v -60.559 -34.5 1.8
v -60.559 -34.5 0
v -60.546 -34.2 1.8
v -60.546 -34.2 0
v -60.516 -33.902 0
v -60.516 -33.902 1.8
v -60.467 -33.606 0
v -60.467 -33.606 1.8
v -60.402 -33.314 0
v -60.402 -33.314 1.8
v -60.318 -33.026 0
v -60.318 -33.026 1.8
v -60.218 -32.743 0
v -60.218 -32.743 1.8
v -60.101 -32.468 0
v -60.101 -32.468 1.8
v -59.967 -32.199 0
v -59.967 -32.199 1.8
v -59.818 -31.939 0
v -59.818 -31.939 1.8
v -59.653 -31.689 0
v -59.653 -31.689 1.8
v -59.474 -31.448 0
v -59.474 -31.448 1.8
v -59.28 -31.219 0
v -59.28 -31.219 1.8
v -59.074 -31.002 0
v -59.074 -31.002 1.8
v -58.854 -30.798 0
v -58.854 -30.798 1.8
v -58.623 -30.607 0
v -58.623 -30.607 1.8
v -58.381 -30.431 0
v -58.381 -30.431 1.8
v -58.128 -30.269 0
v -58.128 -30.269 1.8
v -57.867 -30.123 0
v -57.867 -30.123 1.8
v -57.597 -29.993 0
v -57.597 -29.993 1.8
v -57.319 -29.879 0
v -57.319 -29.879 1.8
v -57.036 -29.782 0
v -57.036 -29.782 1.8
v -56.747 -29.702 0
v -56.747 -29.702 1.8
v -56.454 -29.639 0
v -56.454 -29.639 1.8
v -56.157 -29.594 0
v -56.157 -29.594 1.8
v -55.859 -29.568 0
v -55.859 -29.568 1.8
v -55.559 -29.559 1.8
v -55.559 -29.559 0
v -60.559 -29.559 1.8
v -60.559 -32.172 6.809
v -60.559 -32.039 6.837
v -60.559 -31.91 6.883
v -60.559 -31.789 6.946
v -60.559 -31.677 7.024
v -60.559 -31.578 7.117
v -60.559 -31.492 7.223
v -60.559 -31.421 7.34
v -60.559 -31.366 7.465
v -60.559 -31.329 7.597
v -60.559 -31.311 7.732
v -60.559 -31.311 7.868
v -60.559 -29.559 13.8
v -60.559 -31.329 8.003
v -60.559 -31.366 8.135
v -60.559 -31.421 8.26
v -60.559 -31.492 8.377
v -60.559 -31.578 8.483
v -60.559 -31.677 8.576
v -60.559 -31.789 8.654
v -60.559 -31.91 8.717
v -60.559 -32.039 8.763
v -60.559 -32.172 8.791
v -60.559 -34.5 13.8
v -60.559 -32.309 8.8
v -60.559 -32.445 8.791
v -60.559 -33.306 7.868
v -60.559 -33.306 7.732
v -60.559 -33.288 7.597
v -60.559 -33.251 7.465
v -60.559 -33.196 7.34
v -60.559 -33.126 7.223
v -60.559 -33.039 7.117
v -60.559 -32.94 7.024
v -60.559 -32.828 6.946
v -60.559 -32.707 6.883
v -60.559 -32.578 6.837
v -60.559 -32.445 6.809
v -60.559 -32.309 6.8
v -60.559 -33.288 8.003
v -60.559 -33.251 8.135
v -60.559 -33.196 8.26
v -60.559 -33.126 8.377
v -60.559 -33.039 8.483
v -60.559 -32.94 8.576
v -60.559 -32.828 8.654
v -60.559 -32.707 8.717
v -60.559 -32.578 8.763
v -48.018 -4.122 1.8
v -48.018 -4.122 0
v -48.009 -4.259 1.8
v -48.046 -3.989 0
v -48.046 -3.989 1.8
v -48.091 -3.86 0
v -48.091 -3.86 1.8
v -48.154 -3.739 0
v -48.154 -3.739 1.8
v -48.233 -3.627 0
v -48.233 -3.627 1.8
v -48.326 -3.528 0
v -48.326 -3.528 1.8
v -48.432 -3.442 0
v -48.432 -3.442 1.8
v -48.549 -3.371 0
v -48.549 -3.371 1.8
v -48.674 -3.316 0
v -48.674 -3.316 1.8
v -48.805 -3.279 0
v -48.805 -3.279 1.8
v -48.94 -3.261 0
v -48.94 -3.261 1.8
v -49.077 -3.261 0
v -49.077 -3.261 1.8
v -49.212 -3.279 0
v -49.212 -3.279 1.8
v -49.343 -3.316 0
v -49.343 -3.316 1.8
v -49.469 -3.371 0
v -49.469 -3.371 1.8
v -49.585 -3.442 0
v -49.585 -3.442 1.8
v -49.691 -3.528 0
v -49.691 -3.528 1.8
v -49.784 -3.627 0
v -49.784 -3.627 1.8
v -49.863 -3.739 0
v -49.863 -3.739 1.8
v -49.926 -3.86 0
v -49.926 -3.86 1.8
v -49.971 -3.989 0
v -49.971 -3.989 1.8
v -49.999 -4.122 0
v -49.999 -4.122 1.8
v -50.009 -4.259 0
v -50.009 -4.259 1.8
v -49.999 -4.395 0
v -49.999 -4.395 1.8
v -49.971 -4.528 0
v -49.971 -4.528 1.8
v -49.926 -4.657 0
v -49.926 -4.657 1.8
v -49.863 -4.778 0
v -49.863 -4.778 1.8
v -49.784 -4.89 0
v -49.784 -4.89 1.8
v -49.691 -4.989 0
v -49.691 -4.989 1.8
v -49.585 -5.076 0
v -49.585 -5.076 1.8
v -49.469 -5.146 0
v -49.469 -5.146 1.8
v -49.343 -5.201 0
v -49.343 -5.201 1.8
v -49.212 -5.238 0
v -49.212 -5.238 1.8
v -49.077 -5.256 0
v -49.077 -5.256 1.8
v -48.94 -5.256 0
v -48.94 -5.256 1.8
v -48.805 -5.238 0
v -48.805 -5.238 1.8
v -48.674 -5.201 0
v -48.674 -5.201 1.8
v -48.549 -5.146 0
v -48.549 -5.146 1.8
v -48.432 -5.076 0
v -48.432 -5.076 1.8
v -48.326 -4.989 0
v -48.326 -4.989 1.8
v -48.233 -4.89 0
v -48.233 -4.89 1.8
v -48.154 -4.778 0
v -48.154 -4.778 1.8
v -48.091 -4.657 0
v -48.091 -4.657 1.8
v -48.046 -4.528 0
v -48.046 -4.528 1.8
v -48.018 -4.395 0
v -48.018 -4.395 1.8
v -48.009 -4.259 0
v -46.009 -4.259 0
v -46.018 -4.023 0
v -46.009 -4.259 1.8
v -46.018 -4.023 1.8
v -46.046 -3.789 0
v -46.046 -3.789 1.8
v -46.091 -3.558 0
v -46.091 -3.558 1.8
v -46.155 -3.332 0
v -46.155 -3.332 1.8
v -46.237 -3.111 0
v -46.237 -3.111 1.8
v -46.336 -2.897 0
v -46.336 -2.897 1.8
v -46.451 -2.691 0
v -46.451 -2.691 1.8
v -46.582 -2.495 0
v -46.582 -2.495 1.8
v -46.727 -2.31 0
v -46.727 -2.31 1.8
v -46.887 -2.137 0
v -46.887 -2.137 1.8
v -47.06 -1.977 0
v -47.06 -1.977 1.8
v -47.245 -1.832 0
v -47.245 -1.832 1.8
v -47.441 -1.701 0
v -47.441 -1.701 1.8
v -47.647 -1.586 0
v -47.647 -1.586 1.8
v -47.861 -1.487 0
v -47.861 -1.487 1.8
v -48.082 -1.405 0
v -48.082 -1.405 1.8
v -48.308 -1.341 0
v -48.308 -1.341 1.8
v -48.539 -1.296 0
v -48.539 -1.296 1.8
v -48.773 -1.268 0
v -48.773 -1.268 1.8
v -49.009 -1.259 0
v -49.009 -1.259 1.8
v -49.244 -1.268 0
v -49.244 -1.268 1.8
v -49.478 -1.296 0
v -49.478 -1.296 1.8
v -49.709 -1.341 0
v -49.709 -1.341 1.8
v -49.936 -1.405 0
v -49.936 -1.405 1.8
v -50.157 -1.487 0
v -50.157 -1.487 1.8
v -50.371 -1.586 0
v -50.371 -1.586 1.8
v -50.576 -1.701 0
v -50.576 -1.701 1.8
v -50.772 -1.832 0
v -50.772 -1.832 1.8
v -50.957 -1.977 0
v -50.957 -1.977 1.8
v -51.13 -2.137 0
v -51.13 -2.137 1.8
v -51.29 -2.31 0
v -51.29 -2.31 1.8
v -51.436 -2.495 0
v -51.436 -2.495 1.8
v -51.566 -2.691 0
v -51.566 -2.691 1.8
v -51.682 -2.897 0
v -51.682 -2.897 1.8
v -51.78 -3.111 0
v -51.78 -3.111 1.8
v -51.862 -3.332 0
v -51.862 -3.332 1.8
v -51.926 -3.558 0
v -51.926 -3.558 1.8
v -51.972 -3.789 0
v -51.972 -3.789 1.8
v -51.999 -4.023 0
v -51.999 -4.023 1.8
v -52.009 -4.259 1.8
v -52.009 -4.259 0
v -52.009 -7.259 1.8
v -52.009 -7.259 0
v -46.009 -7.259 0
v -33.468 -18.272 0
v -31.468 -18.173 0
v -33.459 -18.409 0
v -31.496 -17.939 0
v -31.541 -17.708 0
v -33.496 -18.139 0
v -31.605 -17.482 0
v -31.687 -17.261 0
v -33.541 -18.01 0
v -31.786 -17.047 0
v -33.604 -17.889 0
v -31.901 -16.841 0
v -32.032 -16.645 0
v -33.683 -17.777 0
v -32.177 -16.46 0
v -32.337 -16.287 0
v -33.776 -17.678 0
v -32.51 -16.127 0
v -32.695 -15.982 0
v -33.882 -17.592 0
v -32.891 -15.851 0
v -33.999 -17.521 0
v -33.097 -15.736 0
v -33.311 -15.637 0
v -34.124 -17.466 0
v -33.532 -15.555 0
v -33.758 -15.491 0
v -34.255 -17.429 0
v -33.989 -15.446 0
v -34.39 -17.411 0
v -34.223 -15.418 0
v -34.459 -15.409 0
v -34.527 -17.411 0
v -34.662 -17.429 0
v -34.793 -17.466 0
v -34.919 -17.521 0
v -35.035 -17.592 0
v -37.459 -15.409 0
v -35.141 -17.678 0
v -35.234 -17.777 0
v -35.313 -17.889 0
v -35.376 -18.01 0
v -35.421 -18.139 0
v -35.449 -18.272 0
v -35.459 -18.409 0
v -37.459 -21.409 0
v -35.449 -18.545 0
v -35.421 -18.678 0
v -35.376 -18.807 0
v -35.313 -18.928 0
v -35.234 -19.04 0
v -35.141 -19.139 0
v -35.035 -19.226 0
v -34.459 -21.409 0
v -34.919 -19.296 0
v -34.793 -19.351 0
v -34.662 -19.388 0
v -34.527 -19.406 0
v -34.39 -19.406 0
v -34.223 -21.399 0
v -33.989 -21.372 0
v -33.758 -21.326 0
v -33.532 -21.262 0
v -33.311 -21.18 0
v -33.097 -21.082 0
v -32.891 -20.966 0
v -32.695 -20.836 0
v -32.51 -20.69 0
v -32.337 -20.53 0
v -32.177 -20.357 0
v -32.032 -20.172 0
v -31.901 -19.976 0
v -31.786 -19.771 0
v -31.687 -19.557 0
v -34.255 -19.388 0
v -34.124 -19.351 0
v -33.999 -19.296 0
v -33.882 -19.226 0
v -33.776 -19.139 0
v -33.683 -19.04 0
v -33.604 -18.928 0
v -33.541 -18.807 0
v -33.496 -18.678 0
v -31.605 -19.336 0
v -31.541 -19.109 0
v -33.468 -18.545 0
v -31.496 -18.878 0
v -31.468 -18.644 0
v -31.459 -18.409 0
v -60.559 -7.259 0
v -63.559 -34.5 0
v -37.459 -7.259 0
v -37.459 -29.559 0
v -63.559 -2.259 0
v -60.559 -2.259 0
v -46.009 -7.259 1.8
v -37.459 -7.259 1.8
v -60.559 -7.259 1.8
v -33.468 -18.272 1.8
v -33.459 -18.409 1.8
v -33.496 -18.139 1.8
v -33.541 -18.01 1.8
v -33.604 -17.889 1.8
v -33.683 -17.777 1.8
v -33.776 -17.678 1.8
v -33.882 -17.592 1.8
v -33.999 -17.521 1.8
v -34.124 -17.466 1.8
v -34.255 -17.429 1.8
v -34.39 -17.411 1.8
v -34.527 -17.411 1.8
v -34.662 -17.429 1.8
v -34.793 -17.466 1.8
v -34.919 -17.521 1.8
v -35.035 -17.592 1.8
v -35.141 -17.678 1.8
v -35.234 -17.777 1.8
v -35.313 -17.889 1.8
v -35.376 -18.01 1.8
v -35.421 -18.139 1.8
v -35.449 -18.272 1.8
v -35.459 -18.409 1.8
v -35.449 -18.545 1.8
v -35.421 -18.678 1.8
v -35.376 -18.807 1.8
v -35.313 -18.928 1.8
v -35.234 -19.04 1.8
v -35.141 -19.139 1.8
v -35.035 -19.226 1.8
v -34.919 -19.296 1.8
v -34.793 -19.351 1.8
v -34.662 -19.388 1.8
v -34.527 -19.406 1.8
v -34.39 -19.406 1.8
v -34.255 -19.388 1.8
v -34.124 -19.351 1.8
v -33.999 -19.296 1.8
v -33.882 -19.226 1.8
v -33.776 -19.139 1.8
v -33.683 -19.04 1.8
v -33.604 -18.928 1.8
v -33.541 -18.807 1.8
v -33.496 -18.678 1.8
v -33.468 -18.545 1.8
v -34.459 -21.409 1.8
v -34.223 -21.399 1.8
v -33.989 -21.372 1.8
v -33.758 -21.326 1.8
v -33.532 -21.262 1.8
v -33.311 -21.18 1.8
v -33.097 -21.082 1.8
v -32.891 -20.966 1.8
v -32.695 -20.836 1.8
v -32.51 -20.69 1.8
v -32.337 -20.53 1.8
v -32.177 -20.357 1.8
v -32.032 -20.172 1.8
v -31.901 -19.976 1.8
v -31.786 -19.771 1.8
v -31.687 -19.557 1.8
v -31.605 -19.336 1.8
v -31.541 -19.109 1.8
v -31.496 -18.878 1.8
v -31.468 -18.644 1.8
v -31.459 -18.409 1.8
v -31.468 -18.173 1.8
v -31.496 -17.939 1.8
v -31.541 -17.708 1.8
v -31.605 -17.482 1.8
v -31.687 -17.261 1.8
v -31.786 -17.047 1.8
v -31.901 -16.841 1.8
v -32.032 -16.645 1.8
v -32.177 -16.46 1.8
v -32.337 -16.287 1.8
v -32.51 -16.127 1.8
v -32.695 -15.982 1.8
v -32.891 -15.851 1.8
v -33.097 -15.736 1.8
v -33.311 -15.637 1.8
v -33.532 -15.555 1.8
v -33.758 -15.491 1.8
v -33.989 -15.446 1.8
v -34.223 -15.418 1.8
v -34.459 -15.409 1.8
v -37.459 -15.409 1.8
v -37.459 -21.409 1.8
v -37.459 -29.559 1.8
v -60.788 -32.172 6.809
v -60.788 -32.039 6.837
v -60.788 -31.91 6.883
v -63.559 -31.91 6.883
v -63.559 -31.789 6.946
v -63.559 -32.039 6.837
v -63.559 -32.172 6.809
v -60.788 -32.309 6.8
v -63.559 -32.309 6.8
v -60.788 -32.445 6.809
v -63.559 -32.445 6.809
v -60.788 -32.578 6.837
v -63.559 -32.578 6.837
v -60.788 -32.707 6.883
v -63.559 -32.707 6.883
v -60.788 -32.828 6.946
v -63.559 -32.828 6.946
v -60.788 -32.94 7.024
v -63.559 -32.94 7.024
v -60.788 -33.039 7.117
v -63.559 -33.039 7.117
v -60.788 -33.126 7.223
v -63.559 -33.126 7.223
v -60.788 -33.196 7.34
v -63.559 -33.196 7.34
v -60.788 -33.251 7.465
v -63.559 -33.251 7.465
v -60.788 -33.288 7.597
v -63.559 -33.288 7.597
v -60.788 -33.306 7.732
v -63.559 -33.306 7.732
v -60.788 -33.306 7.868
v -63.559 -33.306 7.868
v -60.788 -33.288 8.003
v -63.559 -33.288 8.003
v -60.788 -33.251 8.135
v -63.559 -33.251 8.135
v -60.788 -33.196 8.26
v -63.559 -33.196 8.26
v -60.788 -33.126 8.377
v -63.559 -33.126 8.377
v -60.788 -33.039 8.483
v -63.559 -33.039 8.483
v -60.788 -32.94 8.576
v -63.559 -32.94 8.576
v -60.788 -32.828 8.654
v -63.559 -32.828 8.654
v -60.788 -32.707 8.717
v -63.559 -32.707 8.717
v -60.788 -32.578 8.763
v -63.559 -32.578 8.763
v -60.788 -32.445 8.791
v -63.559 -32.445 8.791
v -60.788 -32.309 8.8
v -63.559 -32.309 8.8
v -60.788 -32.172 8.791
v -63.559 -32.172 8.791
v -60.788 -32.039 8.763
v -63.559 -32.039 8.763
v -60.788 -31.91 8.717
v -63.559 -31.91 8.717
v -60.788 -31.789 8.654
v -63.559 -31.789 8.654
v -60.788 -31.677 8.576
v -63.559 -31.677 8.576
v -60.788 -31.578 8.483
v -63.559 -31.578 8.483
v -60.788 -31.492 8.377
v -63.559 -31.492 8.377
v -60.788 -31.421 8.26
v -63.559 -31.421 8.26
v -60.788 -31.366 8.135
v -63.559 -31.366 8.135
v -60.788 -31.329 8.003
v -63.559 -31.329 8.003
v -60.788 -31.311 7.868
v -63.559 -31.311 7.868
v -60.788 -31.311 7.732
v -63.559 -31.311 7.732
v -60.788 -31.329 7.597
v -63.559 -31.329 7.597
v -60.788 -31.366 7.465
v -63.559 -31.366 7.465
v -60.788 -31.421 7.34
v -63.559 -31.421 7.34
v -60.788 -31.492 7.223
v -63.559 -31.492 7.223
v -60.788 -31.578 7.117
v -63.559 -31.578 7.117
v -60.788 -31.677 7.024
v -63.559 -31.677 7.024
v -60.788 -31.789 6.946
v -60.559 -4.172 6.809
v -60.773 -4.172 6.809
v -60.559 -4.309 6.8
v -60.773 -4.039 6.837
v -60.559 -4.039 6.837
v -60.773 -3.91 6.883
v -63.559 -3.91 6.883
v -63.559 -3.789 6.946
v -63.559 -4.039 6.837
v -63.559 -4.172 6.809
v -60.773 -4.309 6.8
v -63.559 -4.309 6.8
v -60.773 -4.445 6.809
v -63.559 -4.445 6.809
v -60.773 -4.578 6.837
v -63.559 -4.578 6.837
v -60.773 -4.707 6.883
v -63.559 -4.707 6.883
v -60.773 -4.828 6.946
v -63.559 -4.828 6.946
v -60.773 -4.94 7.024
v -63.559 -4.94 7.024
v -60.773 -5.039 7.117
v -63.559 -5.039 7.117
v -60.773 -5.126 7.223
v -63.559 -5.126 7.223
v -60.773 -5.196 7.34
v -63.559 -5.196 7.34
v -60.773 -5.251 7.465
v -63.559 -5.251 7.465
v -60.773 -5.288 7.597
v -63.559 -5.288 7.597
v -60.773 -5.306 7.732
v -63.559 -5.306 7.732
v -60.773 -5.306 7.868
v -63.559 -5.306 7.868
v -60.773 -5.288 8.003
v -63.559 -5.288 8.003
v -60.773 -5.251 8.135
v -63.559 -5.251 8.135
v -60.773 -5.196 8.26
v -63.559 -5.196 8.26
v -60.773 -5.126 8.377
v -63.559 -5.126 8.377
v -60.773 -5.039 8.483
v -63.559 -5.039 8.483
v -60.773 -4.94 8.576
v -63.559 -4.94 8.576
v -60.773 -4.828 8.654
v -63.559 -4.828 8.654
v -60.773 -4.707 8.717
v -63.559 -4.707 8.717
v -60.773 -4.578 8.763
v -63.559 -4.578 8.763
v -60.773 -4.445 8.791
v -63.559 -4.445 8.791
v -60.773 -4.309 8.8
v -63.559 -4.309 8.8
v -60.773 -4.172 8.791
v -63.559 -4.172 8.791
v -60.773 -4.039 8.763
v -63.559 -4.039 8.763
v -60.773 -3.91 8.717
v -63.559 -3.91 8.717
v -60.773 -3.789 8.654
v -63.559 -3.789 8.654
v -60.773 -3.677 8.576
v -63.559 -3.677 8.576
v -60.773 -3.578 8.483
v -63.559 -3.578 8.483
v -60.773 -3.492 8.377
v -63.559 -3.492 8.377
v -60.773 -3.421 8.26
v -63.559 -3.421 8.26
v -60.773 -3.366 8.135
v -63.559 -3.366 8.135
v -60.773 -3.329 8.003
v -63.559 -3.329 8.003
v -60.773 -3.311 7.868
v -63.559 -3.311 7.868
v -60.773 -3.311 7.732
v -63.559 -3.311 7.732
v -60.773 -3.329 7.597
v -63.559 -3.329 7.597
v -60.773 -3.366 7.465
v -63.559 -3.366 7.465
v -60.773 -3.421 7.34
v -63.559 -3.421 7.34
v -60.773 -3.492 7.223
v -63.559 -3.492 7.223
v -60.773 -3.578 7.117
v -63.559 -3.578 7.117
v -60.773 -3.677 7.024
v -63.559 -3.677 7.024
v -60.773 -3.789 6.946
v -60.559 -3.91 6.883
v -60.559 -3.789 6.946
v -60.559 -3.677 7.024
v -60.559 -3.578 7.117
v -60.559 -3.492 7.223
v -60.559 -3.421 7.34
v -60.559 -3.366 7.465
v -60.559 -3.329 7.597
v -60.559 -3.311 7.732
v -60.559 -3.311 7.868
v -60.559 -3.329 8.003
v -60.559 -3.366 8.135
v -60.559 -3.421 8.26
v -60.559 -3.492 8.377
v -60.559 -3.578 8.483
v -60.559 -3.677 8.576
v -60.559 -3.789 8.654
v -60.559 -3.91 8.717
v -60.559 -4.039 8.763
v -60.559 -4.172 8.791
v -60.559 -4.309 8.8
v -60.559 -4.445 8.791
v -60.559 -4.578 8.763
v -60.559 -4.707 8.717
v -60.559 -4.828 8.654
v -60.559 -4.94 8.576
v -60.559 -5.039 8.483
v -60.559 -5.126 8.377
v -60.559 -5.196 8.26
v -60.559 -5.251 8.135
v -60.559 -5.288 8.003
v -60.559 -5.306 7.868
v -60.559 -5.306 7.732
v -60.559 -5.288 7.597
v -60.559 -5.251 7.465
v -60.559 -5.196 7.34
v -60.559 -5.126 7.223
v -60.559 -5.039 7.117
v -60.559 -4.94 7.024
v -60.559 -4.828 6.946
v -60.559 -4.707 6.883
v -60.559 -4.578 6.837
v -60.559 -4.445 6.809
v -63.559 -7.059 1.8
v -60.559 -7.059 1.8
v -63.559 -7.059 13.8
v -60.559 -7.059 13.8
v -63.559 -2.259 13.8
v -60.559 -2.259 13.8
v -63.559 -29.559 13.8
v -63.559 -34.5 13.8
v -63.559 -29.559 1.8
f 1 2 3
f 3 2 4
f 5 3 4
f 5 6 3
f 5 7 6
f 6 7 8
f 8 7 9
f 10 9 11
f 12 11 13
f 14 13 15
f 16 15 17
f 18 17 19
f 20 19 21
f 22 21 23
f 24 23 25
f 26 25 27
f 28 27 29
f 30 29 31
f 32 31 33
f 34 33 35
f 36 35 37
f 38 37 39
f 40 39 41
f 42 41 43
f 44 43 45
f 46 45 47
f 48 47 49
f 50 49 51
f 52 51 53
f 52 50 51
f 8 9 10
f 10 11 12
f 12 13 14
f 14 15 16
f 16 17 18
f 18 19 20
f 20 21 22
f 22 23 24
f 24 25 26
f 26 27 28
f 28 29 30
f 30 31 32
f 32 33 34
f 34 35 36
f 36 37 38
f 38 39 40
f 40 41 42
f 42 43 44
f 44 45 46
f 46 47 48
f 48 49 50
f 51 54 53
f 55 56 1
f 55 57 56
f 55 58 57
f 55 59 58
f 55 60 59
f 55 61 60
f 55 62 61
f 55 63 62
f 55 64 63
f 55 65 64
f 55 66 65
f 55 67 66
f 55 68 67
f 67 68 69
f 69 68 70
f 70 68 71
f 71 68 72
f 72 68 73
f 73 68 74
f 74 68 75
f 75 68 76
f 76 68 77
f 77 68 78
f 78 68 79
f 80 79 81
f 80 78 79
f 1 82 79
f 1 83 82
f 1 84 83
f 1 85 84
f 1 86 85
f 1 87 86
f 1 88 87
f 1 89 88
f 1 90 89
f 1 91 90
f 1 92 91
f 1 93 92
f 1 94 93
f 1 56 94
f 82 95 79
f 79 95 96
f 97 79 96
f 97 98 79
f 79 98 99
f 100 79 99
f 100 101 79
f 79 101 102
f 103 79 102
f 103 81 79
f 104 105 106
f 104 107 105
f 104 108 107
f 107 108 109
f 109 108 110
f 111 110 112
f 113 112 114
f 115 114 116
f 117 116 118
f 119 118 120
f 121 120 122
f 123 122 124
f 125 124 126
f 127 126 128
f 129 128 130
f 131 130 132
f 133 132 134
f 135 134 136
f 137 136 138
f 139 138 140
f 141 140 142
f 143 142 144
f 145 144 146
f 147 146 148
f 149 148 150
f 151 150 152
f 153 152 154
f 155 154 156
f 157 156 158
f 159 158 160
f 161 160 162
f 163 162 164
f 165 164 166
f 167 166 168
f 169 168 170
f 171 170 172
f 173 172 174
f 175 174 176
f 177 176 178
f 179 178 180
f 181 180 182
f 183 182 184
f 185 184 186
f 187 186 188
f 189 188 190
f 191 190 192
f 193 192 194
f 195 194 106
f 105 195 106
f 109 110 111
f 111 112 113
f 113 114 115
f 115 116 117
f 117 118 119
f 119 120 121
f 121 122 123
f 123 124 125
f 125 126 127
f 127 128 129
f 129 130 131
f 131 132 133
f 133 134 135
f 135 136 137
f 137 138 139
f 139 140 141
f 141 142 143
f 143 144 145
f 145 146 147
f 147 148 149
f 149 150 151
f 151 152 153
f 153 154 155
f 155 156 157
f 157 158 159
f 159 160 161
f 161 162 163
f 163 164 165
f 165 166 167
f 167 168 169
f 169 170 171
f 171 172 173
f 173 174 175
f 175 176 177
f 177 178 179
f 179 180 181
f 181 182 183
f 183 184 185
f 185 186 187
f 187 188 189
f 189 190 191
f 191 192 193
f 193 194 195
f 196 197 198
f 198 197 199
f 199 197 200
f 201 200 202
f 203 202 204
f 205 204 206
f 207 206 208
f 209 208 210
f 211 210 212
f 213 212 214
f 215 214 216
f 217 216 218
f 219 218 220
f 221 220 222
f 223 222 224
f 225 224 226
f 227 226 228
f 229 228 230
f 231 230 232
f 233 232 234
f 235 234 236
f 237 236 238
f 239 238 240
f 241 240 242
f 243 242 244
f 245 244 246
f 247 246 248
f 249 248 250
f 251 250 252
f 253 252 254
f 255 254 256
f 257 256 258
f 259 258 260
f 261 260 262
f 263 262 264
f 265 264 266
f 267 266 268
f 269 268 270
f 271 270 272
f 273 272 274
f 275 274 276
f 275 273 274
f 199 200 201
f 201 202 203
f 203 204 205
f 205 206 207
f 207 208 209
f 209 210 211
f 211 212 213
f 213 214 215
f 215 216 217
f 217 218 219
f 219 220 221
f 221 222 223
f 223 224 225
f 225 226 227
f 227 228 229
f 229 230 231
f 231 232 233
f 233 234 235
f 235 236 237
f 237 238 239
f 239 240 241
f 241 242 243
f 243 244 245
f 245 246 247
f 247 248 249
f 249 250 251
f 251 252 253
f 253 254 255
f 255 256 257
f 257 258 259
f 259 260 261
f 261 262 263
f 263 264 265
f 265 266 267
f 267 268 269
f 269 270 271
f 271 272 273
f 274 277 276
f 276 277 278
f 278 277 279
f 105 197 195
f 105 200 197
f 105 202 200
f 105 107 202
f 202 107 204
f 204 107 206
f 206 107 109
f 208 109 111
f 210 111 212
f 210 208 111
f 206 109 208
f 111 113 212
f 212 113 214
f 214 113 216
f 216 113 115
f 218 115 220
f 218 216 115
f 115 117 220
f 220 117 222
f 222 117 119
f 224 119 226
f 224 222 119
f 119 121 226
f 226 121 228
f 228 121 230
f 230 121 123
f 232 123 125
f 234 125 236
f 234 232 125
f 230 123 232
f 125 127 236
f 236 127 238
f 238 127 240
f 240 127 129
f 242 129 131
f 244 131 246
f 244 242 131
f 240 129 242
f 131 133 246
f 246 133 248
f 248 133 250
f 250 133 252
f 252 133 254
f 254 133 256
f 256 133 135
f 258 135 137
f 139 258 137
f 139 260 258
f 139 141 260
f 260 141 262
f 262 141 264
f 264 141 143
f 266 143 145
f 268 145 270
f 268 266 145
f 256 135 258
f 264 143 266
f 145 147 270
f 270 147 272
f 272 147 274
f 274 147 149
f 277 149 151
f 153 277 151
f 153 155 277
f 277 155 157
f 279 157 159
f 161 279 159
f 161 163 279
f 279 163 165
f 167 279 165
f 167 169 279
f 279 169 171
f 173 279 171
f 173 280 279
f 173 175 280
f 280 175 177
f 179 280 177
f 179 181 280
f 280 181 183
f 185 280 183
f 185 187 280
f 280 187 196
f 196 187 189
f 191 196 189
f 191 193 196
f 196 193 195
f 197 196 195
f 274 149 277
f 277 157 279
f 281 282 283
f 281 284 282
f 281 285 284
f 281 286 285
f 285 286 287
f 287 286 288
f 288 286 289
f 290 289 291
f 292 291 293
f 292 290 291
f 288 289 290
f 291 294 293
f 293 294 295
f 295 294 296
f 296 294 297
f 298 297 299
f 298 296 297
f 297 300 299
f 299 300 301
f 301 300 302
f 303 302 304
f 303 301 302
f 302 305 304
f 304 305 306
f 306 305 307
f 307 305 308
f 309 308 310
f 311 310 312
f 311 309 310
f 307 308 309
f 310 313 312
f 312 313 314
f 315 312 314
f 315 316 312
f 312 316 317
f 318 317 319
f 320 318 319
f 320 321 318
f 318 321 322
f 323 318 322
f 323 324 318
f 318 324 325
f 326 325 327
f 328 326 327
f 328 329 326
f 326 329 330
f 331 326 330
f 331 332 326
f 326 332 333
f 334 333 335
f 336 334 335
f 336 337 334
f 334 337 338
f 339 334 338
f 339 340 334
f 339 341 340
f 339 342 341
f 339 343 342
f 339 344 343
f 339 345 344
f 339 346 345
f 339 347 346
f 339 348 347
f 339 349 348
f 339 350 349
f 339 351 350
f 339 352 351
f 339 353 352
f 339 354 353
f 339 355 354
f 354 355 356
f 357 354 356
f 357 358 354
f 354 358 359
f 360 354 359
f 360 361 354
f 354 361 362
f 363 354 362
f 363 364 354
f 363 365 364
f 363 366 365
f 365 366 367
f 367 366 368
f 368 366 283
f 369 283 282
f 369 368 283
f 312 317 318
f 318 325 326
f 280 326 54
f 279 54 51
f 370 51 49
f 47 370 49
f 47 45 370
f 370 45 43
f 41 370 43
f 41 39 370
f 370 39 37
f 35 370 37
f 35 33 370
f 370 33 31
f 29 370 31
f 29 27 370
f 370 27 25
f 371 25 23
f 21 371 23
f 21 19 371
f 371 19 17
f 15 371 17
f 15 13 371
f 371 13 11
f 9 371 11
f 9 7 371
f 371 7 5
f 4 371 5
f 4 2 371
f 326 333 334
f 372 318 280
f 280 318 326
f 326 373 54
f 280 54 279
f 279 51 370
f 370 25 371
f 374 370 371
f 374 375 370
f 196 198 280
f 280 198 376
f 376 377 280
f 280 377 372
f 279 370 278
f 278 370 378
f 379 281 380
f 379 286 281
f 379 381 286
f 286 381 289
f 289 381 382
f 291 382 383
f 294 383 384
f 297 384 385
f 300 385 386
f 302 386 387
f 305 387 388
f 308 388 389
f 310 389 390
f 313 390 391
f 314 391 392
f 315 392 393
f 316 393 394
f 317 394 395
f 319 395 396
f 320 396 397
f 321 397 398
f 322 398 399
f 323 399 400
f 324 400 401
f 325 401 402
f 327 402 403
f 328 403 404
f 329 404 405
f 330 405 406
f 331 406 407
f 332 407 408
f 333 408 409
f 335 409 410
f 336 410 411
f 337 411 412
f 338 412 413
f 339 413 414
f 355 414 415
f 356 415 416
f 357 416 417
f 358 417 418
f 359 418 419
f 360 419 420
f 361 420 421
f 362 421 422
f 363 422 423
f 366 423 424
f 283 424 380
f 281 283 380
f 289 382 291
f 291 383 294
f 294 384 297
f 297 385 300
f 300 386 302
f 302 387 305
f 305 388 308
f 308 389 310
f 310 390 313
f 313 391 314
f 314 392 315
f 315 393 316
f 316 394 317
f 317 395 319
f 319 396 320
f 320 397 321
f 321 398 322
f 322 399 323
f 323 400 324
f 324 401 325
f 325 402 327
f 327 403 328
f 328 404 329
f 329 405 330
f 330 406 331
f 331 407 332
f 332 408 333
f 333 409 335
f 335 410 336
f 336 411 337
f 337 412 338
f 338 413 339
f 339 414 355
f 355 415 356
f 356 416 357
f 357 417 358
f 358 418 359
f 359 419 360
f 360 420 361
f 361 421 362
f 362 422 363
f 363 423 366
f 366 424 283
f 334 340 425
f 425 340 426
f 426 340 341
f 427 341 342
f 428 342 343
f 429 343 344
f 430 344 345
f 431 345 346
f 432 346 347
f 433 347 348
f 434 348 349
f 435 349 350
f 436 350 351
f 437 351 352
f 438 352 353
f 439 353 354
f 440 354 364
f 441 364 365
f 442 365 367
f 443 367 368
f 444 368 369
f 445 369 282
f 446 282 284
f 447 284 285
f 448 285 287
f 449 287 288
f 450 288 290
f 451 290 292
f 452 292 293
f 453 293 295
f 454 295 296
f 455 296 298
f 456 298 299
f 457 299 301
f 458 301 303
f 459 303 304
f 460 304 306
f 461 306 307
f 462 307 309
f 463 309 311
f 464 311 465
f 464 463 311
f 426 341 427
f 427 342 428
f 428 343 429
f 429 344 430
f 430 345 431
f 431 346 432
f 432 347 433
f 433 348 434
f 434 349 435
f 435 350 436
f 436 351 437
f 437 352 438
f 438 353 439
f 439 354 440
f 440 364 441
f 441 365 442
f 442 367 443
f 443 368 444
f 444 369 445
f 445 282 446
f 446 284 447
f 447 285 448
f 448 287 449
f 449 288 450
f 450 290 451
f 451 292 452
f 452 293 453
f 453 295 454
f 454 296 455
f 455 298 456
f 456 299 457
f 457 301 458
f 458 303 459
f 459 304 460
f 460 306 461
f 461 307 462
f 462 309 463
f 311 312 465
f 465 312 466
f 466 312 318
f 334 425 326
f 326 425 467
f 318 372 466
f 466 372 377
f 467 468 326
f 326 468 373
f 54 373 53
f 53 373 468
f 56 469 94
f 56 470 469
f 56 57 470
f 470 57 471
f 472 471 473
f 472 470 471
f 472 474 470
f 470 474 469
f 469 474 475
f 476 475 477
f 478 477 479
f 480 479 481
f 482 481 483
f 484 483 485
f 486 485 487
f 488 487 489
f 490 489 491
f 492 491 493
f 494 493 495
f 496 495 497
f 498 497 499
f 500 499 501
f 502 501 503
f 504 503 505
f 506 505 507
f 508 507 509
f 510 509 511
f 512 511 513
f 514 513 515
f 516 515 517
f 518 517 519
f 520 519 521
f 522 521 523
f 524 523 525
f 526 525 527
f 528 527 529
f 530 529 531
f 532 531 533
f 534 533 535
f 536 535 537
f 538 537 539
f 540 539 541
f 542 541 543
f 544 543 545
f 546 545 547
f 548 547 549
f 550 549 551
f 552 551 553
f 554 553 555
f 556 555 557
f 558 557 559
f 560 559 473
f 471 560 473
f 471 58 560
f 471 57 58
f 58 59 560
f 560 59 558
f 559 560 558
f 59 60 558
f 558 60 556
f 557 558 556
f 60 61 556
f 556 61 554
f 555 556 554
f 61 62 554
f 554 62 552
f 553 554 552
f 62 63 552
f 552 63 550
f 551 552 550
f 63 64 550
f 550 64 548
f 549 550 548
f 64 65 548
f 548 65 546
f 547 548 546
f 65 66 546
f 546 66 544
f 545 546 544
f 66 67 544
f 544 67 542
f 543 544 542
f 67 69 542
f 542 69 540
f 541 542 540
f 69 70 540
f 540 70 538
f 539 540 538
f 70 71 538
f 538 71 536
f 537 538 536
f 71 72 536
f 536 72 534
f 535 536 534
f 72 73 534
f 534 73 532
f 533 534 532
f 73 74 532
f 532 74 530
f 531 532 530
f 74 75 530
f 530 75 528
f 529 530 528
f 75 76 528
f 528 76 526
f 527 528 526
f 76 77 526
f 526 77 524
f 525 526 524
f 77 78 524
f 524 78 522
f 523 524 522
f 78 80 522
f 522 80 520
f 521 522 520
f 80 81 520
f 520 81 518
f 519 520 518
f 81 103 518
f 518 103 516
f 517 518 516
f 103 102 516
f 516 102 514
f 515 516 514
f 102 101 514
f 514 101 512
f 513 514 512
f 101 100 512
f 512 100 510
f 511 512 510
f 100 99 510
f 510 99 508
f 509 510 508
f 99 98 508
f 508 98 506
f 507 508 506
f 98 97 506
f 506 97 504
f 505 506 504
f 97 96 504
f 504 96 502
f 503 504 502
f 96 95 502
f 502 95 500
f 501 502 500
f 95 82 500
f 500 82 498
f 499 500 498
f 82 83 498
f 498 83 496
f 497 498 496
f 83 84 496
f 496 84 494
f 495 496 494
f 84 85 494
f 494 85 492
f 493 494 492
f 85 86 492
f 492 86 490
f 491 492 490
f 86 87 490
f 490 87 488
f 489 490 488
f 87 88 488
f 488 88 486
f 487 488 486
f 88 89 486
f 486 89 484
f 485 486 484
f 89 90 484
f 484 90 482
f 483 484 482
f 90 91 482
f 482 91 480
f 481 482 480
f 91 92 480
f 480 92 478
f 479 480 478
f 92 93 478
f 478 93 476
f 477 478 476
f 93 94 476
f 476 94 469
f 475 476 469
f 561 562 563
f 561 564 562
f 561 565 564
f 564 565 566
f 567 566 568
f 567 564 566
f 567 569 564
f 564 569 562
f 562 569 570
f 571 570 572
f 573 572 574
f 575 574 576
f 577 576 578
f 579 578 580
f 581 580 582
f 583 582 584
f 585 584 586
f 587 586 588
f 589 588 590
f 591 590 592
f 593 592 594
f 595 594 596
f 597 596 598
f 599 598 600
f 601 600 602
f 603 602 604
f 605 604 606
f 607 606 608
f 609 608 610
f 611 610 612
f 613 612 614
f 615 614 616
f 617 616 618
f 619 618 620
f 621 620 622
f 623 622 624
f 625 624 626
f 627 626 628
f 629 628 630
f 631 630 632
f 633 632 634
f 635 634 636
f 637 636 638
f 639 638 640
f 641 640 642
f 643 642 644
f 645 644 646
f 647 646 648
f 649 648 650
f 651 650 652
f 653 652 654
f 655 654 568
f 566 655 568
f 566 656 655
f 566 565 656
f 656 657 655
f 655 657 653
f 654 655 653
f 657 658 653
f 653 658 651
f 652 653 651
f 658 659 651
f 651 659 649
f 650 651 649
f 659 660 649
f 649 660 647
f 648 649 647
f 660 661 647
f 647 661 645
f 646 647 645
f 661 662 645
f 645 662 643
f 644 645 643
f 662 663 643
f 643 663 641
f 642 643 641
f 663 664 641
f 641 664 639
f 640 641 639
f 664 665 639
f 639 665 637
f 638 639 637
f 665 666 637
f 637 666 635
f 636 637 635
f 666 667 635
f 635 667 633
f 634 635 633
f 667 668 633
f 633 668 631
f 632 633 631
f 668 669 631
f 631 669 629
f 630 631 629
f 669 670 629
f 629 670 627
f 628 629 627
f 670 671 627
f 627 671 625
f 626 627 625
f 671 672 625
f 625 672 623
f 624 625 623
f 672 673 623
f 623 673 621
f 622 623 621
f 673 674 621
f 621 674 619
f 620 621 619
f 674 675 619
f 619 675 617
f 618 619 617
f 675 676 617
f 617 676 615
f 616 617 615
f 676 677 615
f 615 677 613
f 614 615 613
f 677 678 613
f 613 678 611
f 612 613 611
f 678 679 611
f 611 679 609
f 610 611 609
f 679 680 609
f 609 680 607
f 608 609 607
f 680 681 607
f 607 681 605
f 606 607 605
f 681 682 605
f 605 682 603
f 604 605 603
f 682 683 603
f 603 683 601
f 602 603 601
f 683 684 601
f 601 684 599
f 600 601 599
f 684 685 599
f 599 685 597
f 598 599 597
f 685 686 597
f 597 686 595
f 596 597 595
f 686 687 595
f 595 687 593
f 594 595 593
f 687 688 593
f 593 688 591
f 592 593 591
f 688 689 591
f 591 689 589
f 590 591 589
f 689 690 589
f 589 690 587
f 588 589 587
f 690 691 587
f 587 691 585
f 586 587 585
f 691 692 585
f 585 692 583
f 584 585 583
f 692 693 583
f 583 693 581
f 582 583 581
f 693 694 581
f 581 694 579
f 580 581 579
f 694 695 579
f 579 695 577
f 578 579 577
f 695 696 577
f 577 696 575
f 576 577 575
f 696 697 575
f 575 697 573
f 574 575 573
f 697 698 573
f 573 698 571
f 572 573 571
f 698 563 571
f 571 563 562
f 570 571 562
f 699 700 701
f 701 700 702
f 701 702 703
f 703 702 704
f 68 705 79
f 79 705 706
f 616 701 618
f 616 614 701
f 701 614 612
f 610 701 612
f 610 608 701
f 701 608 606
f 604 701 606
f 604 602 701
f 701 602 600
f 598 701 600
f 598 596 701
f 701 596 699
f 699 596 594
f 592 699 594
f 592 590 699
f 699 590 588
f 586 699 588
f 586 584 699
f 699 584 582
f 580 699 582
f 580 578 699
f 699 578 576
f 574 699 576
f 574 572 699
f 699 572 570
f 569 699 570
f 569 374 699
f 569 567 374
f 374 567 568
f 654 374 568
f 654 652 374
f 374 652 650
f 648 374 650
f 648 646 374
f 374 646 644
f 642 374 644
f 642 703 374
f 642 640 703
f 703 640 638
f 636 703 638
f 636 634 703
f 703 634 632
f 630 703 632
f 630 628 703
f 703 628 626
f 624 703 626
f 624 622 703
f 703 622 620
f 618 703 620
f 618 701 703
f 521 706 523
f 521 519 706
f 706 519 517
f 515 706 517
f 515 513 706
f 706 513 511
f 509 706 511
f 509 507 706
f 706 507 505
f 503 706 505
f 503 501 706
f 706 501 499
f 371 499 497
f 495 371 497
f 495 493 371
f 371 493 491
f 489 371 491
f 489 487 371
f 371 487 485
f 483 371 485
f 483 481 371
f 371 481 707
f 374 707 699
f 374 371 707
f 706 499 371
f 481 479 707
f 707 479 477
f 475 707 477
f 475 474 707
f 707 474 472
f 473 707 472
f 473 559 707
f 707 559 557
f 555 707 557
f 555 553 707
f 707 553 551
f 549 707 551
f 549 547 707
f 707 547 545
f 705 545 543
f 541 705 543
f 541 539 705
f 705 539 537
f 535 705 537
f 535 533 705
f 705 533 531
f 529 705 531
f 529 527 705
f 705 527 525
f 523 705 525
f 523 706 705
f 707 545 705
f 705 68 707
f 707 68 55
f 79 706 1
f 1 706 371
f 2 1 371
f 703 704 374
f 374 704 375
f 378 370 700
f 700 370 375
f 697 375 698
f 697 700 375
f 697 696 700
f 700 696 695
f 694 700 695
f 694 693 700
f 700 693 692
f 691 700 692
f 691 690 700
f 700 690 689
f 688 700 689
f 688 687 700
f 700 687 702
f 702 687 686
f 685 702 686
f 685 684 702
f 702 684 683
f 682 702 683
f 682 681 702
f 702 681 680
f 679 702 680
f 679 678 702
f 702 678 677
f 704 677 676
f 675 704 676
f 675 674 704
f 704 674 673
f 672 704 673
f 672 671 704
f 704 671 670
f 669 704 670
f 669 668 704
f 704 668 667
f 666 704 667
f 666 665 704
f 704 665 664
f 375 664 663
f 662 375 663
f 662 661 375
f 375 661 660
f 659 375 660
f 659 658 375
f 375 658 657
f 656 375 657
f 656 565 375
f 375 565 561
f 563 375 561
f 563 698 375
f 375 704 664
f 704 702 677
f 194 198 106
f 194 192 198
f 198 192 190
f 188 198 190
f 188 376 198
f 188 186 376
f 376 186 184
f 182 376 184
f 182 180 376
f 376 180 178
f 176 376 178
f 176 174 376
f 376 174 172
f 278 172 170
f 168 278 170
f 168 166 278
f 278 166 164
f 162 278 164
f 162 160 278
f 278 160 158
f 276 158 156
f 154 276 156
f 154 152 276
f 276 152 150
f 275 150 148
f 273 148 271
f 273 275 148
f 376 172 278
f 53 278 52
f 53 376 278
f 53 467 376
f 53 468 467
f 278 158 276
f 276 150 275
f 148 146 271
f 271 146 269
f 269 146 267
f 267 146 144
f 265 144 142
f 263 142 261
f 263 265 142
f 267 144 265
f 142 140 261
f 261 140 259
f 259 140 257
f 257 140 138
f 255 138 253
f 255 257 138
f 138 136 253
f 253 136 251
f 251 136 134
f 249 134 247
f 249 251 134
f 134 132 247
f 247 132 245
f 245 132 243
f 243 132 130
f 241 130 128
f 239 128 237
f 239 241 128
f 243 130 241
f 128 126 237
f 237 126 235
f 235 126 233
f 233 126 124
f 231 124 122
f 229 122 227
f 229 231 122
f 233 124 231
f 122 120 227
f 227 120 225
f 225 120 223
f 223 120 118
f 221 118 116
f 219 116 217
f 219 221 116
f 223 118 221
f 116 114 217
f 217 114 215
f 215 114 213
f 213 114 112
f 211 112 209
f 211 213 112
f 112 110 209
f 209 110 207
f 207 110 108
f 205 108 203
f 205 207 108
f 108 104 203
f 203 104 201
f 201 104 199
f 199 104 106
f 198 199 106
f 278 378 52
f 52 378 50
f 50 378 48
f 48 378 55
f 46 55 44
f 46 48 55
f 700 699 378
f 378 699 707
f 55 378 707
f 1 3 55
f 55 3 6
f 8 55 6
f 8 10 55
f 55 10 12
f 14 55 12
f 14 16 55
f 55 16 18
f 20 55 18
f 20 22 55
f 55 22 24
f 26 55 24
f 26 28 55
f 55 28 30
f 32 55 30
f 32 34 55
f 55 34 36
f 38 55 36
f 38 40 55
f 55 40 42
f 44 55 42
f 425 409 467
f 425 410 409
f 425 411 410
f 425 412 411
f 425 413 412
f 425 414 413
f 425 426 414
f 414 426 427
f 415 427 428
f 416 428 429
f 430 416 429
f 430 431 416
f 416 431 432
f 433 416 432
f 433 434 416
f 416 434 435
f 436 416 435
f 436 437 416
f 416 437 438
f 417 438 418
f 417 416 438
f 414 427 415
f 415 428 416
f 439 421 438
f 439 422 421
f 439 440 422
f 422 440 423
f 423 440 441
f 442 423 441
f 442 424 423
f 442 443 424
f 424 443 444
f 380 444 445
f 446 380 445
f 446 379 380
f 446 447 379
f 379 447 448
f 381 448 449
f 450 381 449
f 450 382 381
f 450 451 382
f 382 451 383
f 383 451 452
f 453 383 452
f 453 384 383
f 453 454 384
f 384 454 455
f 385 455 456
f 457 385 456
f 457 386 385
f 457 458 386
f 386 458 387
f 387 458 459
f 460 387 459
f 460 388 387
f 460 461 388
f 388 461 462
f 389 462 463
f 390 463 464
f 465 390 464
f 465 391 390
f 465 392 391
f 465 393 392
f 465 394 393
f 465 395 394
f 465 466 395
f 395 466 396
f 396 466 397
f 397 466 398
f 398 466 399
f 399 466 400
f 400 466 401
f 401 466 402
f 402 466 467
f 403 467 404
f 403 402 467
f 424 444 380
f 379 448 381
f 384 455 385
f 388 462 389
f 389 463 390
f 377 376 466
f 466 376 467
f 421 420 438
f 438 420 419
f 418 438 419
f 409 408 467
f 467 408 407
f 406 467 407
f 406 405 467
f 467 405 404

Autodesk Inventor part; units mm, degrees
sketch "Boceto2" plane through (0, 0, 0) normal (0, 0, 1) x (1, 0, 0)
  circle A0 centre (60.5, -11.7293) radius 1.25 projected
  circle A1 centre (60.5, -32) radius 1.25 projected
  line L0 (-63.5, 34.5) -> (63.5, 34.5) projected
  line L1 (-63.5, -34.5) -> (-63.5, 34.5) projected
  line L2 (63.5, -34.5) -> (-63.5, -34.5) projected
  line L3 (63.5, 34.5) -> (63.5, -34.5) projected
  line L4 (-37.2586, -7.2586) -> (-37.2586, -29.3586) projected
  line L5 (-58.4586, -34.5586) -> (-60.3586, -34.5586) projected
  line L6 (-70.2586, -17.8586) -> (-70.2586, -21.2586) projected
  line L7 (-60.3586, -2.2586) -> (-58.4586, -2.2586) projected
  line L8 (-58.4586, -2.2586) -> (-58.4586, -34.3586) projected
  line L9 (-60.3586, -34.3586) -> (-60.3586, -29.3586) projected
  line L10 (-60.5586, -2.2586) -> (-60.5586, -6.8586) projected
  line L11 (-60.5586, -2.2586) -> (-63.5, -2.2586)
  line L12 (-63.5, -2.2586) -> (-63.5, -34.5)
  line L13 (-63.5, -34.5) -> (-60.5586, -34.5)
  line L14 (-60.5586, -34.5) -> (-60.5586, -2.2586)
  circle A2 centre (-49.0086, -4.2586) radius 1 projected
  circle A3 centre (-34.4586, -18.4086) radius 1 projected
  point P0 (0, 0)
ref_plane "Plano de trabajo1" through (-63.7586, -34.3586, 1.8) normal (0, 0, -1) x (0, 1, 0)
extrude "Extrusión1" add sketch "Boceto2" along normal up to surface (1.8 mm away) contours L11 L10 L14 L2 L1
sketch "Boceto3" plane through (-63.5, -34.5, 1.8) normal (0, 0, 1) x (1, 0, 0)
  line L0 (2.9414, 4.9414) -> (-0.2586, 4.9414) projected
  line L1 (-0.0586, 27.4414) -> (2.7414, 27.4414) projected
  line L2 (-0.0586, 27.4414) -> (2.9414, 27.4414)
  line L3 (2.9414, 27.4414) -> (2.9414, 32.2414)
  line L4 (2.9414, 32.2414) -> (-0.0586, 32.2414)
  line L5 (-0.0586, 32.2414) -> (-0.0586, 27.4414)
  line L6 (-0.2586, 4.9414) -> (2.9414, 4.9414)
  line L7 (2.9414, 4.9414) -> (2.9414, 0)
  line L8 (2.9414, 0) -> (-0.2586, 0)
  line L9 (-0.2586, 0) -> (-0.2586, 4.9414)
  point P0 (63.5, 34.5)
ref_plane "Plano de trabajo2" through (-63.7586, -34.3586, 13.8) normal (0, 0, -1) x (0, 1, 0)
extrude "Extrusión2" add sketch "Boceto3" along normal up to surface (12 mm away)
sketch "Boceto4" plane through (-63.5586, -7.0586, 1.8) normal (-1, 0, 0) x (0, 0, 1)
  arc A0 (5.3, 3.7247) -> (6.7, 3.7247) centre (6, 2.75) ccw projected
  arc A1 (6.5, -26.3409) -> (5.3, -26.2247) centre (6, -25.25) ccw projected
  arc A2 (6.5, -26.3409) -> (5.3, -26.2247) centre (6, -25.25) ccw projected
  arc A3 (6.5, -26.3409) -> (5.3, -26.2247) centre (6, -25.25) ccw projected
  point P0 (-1.8, 7.0586)
hole "Agujero1" at (-63.5586, -4.3086, 7.8) direction (1, 0, 0) diameter 2 end up to surface
sketch "Boceto5" plane through (-63.7586, -34.5, 1.8) normal (-1, 0, 0) x (0, 0, 1)
  arc A0 (6.5, 1.1006) -> (5.3, 1.2167) centre (6, 2.1914) ccw projected
  point P0 (-1.8, 34.5)
hole "Agujero2" at (-63.7586, -32.3086, 7.8) direction (1, 0, 0) diameter 2 end up to surface
move faces "Desplazar1" translate (-0.0586, 0, 0) faces at (-63.5, -14.6057, 0.6)
move faces "Desplazar2" translate (0.2, 0, 0) faces at (-63.7586, -32.1224, 3.4667)
ref_plane "Plano de trabajo3" through (0, 0, 0) normal (0, 0, 1) x (1, 0, 0)
sketch "Boceto6" plane through (0, 0, 0) normal (0, 0, 1) x (1, 0, 0)
  line L0 (-37.4586, -7.2586) -> (-37.4586, -29.3586) projected
  line L1 (-37.4586, -29.3586) -> (-37.4586, -38.3484)
  circle A0 centre (60.5, -11.7293) radius 1.25 projected
  circle A1 centre (60.5, -32) radius 1.25 projected
  line L2 (-63.5, 34.5) -> (63.5, 34.5) projected
  line L3 (-63.5, -34.5) -> (-63.5, 34.5) projected
  line L4 (63.5, -34.5) -> (-63.5, -34.5) projected
  line L5 (63.5, 34.5) -> (63.5, -34.5) projected
  line L6 (-58.0586, -7.2586) -> (-37.4586, -7.2586) projected
  line L7 (-58.0586, -29.5586) -> (-37.4586, -29.5586) projected
  line L8 (-37.4586, -29.5586) -> (-60.5586, -29.5586)
  line L9 (-60.5586, -34.5) -> (-60.5586, -2.2586) projected
  line L10 (-60.5586, -29.5586) -> (-37.4586, -29.5586)
  line L11 (-37.4586, -29.5586) -> (-37.4586, -7.2586)
  line L12 (-37.4586, -7.2586) -> (-60.5586, -7.2586)
  line L13 (-60.5586, -7.2586) -> (-60.5586, -29.5586)
  circle A2 centre (-49.0086, -4.2586) radius 1 projected
  circle A3 centre (-34.4586, -18.4086) radius 1 projected
  point P0 (0, 0)
ref_plane "Plano de trabajo4" through (-58.0586, -29.3586, 1.8) normal (0, 0, 1) x (1, 0, 0)
extrude "Extrusión3" add sketch "Boceto6" along normal up to surface (1.8 mm away) contours L0 L1 L7 L8 L9 L12 L6
sketch "Boceto7" plane through (-37.4586, -29.5586, 0) normal (1, 0, 0) x (0, 0, -1)
  line L0 (-1.8, 0) -> (-1.8, 22.3)
  line L1 (-1.8, 22.3) -> (-1.8, 0) projected
  line L2 (-1.8, 11.15) -> (0, 11.15)
  line L3 (0, 0) -> (0, 22.3) projected
  line L4 (0, 8.15) -> (-1.8, 8.15)
  line L5 (-1.8, 8.15) -> (-1.8, 14.15)
  line L6 (-1.8, 14.15) -> (0, 14.15)
  line L7 (0, 14.15) -> (0, 8.15)
  line L8 (0, 8.15) -> (-1.8, 14.15) construction
  line L9 (-1.8, 8.15) -> (0, 14.15) construction
  point P0 (0, 29.5586)
  point P1 (-0.9, 11.15)
  dimension "d26" = 6
extrude "Extrusión4" add sketch "Boceto7" along normal blind 6
sketch "Boceto8" plane through (-63.5586, -7.0586, 1.8) normal (0, 0, 1) x (1, 0, 0)
  line L0 (26.1, -14.35) -> (26.1, -8.35)
  line L1 (26.1, -14.35) -> (29.1, -14.35)
  line L2 (26.1, -14.35) -> (32.1, -14.35) projected
  line L3 (26.1, -8.35) -> (32.1, -8.35) projected
  line L4 (29.1, -8.35) -> (29.1, -14.35)
  arc A0 (29.1, -14.35) -> (29.1, -8.35) centre (29.1, -11.35) ccw
  line L5 (32.1, -14.35) -> (32.1, -8.35)
  line L6 (29.1, -8.35) -> (32.0071, -8.35)
  line L7 (29.1, -14.35) -> (32.1, -14.35)
  point P0 (63.5586, 7.0586)
ref_plane "Plano de trabajo5" through (-63.5, -34.5, 0) normal (0, 0, 1) x (1, 0, 0)
extrude "Extrusión5" cut sketch "Boceto8" against normal up to surface (1.8 mm away) contours A0 L5 L2 | L3 L5 A0
hole "Agujero3" at (-34.4586, -18.4086, 1.8) direction (0, 0, -1) diameter 2 depth 1.8 tip angle 118
sketch "Boceto10" plane through (-60.5586, -7.2586, 0) normal (0, 1, 0) x (1, 0, 0)
  line L0 (23.1, 0) -> (0, 0) projected
  line L1 (11.55, 0) -> (11.55, -1.8)
  line L2 (0, -1.8) -> (23.1, -1.8) projected
  line L3 (14.55, -1.8) -> (8.55, -1.8)
  line L4 (8.55, -1.8) -> (8.55, 0)
  line L5 (8.55, 0) -> (14.55, 0)
  line L6 (14.55, 0) -> (14.55, -1.8)
  line L7 (14.55, -1.8) -> (8.55, 0) construction
  line L8 (8.55, -1.8) -> (14.55, 0) construction
  point P0 (60.5586, 0)
  point P1 (11.55, -0.9)
  dimension "d40" = 6
extrude "Extrusión6" add sketch "Boceto10" along normal blind 6
sketch "Boceto11" plane through (-63.5586, -7.0586, 1.8) normal (0, 0, 1) x (1, 0, 0)
  line L0 (17.55, -0.2) -> (17.55, 5.8) projected
  line L1 (17.55, 2.8) -> (11.55, 2.8)
  line L2 (11.55, -0.2) -> (11.55, 5.8) projected
  arc A0 (17.55, 2.8) -> (11.55, 2.8) centre (14.55, 2.8) ccw
  line L3 (17.55, 5.8) -> (11.55, 5.8)
  line L4 (11.55, 2.8) -> (11.55, 5.8)
  line L5 (11.55, 5.8) -> (17.55, 5.8) projected
  line L6 (17.55, 2.8) -> (17.55, 5.8)
  point P0 (63.5586, 7.0586)
ref_plane "Plano de trabajo6" through (-63.5, -34.5, 0) normal (0, 0, 1) x (1, 0, 0)
extrude "Extrusión7" cut sketch "Boceto11" against normal up to surface (1.8 mm away) contours A0 L3 L0 | L2 L3 A0
hole "Agujero4" at (-49.0086, -4.2586, 1.8) direction (0, 0, -1) diameter 2 depth 1.8 tip angle 118
fillet "Empalme1" radius 5 1 edges at (-60.5586, -29.5586, 0.9)
properties part number "soporteIzq"
